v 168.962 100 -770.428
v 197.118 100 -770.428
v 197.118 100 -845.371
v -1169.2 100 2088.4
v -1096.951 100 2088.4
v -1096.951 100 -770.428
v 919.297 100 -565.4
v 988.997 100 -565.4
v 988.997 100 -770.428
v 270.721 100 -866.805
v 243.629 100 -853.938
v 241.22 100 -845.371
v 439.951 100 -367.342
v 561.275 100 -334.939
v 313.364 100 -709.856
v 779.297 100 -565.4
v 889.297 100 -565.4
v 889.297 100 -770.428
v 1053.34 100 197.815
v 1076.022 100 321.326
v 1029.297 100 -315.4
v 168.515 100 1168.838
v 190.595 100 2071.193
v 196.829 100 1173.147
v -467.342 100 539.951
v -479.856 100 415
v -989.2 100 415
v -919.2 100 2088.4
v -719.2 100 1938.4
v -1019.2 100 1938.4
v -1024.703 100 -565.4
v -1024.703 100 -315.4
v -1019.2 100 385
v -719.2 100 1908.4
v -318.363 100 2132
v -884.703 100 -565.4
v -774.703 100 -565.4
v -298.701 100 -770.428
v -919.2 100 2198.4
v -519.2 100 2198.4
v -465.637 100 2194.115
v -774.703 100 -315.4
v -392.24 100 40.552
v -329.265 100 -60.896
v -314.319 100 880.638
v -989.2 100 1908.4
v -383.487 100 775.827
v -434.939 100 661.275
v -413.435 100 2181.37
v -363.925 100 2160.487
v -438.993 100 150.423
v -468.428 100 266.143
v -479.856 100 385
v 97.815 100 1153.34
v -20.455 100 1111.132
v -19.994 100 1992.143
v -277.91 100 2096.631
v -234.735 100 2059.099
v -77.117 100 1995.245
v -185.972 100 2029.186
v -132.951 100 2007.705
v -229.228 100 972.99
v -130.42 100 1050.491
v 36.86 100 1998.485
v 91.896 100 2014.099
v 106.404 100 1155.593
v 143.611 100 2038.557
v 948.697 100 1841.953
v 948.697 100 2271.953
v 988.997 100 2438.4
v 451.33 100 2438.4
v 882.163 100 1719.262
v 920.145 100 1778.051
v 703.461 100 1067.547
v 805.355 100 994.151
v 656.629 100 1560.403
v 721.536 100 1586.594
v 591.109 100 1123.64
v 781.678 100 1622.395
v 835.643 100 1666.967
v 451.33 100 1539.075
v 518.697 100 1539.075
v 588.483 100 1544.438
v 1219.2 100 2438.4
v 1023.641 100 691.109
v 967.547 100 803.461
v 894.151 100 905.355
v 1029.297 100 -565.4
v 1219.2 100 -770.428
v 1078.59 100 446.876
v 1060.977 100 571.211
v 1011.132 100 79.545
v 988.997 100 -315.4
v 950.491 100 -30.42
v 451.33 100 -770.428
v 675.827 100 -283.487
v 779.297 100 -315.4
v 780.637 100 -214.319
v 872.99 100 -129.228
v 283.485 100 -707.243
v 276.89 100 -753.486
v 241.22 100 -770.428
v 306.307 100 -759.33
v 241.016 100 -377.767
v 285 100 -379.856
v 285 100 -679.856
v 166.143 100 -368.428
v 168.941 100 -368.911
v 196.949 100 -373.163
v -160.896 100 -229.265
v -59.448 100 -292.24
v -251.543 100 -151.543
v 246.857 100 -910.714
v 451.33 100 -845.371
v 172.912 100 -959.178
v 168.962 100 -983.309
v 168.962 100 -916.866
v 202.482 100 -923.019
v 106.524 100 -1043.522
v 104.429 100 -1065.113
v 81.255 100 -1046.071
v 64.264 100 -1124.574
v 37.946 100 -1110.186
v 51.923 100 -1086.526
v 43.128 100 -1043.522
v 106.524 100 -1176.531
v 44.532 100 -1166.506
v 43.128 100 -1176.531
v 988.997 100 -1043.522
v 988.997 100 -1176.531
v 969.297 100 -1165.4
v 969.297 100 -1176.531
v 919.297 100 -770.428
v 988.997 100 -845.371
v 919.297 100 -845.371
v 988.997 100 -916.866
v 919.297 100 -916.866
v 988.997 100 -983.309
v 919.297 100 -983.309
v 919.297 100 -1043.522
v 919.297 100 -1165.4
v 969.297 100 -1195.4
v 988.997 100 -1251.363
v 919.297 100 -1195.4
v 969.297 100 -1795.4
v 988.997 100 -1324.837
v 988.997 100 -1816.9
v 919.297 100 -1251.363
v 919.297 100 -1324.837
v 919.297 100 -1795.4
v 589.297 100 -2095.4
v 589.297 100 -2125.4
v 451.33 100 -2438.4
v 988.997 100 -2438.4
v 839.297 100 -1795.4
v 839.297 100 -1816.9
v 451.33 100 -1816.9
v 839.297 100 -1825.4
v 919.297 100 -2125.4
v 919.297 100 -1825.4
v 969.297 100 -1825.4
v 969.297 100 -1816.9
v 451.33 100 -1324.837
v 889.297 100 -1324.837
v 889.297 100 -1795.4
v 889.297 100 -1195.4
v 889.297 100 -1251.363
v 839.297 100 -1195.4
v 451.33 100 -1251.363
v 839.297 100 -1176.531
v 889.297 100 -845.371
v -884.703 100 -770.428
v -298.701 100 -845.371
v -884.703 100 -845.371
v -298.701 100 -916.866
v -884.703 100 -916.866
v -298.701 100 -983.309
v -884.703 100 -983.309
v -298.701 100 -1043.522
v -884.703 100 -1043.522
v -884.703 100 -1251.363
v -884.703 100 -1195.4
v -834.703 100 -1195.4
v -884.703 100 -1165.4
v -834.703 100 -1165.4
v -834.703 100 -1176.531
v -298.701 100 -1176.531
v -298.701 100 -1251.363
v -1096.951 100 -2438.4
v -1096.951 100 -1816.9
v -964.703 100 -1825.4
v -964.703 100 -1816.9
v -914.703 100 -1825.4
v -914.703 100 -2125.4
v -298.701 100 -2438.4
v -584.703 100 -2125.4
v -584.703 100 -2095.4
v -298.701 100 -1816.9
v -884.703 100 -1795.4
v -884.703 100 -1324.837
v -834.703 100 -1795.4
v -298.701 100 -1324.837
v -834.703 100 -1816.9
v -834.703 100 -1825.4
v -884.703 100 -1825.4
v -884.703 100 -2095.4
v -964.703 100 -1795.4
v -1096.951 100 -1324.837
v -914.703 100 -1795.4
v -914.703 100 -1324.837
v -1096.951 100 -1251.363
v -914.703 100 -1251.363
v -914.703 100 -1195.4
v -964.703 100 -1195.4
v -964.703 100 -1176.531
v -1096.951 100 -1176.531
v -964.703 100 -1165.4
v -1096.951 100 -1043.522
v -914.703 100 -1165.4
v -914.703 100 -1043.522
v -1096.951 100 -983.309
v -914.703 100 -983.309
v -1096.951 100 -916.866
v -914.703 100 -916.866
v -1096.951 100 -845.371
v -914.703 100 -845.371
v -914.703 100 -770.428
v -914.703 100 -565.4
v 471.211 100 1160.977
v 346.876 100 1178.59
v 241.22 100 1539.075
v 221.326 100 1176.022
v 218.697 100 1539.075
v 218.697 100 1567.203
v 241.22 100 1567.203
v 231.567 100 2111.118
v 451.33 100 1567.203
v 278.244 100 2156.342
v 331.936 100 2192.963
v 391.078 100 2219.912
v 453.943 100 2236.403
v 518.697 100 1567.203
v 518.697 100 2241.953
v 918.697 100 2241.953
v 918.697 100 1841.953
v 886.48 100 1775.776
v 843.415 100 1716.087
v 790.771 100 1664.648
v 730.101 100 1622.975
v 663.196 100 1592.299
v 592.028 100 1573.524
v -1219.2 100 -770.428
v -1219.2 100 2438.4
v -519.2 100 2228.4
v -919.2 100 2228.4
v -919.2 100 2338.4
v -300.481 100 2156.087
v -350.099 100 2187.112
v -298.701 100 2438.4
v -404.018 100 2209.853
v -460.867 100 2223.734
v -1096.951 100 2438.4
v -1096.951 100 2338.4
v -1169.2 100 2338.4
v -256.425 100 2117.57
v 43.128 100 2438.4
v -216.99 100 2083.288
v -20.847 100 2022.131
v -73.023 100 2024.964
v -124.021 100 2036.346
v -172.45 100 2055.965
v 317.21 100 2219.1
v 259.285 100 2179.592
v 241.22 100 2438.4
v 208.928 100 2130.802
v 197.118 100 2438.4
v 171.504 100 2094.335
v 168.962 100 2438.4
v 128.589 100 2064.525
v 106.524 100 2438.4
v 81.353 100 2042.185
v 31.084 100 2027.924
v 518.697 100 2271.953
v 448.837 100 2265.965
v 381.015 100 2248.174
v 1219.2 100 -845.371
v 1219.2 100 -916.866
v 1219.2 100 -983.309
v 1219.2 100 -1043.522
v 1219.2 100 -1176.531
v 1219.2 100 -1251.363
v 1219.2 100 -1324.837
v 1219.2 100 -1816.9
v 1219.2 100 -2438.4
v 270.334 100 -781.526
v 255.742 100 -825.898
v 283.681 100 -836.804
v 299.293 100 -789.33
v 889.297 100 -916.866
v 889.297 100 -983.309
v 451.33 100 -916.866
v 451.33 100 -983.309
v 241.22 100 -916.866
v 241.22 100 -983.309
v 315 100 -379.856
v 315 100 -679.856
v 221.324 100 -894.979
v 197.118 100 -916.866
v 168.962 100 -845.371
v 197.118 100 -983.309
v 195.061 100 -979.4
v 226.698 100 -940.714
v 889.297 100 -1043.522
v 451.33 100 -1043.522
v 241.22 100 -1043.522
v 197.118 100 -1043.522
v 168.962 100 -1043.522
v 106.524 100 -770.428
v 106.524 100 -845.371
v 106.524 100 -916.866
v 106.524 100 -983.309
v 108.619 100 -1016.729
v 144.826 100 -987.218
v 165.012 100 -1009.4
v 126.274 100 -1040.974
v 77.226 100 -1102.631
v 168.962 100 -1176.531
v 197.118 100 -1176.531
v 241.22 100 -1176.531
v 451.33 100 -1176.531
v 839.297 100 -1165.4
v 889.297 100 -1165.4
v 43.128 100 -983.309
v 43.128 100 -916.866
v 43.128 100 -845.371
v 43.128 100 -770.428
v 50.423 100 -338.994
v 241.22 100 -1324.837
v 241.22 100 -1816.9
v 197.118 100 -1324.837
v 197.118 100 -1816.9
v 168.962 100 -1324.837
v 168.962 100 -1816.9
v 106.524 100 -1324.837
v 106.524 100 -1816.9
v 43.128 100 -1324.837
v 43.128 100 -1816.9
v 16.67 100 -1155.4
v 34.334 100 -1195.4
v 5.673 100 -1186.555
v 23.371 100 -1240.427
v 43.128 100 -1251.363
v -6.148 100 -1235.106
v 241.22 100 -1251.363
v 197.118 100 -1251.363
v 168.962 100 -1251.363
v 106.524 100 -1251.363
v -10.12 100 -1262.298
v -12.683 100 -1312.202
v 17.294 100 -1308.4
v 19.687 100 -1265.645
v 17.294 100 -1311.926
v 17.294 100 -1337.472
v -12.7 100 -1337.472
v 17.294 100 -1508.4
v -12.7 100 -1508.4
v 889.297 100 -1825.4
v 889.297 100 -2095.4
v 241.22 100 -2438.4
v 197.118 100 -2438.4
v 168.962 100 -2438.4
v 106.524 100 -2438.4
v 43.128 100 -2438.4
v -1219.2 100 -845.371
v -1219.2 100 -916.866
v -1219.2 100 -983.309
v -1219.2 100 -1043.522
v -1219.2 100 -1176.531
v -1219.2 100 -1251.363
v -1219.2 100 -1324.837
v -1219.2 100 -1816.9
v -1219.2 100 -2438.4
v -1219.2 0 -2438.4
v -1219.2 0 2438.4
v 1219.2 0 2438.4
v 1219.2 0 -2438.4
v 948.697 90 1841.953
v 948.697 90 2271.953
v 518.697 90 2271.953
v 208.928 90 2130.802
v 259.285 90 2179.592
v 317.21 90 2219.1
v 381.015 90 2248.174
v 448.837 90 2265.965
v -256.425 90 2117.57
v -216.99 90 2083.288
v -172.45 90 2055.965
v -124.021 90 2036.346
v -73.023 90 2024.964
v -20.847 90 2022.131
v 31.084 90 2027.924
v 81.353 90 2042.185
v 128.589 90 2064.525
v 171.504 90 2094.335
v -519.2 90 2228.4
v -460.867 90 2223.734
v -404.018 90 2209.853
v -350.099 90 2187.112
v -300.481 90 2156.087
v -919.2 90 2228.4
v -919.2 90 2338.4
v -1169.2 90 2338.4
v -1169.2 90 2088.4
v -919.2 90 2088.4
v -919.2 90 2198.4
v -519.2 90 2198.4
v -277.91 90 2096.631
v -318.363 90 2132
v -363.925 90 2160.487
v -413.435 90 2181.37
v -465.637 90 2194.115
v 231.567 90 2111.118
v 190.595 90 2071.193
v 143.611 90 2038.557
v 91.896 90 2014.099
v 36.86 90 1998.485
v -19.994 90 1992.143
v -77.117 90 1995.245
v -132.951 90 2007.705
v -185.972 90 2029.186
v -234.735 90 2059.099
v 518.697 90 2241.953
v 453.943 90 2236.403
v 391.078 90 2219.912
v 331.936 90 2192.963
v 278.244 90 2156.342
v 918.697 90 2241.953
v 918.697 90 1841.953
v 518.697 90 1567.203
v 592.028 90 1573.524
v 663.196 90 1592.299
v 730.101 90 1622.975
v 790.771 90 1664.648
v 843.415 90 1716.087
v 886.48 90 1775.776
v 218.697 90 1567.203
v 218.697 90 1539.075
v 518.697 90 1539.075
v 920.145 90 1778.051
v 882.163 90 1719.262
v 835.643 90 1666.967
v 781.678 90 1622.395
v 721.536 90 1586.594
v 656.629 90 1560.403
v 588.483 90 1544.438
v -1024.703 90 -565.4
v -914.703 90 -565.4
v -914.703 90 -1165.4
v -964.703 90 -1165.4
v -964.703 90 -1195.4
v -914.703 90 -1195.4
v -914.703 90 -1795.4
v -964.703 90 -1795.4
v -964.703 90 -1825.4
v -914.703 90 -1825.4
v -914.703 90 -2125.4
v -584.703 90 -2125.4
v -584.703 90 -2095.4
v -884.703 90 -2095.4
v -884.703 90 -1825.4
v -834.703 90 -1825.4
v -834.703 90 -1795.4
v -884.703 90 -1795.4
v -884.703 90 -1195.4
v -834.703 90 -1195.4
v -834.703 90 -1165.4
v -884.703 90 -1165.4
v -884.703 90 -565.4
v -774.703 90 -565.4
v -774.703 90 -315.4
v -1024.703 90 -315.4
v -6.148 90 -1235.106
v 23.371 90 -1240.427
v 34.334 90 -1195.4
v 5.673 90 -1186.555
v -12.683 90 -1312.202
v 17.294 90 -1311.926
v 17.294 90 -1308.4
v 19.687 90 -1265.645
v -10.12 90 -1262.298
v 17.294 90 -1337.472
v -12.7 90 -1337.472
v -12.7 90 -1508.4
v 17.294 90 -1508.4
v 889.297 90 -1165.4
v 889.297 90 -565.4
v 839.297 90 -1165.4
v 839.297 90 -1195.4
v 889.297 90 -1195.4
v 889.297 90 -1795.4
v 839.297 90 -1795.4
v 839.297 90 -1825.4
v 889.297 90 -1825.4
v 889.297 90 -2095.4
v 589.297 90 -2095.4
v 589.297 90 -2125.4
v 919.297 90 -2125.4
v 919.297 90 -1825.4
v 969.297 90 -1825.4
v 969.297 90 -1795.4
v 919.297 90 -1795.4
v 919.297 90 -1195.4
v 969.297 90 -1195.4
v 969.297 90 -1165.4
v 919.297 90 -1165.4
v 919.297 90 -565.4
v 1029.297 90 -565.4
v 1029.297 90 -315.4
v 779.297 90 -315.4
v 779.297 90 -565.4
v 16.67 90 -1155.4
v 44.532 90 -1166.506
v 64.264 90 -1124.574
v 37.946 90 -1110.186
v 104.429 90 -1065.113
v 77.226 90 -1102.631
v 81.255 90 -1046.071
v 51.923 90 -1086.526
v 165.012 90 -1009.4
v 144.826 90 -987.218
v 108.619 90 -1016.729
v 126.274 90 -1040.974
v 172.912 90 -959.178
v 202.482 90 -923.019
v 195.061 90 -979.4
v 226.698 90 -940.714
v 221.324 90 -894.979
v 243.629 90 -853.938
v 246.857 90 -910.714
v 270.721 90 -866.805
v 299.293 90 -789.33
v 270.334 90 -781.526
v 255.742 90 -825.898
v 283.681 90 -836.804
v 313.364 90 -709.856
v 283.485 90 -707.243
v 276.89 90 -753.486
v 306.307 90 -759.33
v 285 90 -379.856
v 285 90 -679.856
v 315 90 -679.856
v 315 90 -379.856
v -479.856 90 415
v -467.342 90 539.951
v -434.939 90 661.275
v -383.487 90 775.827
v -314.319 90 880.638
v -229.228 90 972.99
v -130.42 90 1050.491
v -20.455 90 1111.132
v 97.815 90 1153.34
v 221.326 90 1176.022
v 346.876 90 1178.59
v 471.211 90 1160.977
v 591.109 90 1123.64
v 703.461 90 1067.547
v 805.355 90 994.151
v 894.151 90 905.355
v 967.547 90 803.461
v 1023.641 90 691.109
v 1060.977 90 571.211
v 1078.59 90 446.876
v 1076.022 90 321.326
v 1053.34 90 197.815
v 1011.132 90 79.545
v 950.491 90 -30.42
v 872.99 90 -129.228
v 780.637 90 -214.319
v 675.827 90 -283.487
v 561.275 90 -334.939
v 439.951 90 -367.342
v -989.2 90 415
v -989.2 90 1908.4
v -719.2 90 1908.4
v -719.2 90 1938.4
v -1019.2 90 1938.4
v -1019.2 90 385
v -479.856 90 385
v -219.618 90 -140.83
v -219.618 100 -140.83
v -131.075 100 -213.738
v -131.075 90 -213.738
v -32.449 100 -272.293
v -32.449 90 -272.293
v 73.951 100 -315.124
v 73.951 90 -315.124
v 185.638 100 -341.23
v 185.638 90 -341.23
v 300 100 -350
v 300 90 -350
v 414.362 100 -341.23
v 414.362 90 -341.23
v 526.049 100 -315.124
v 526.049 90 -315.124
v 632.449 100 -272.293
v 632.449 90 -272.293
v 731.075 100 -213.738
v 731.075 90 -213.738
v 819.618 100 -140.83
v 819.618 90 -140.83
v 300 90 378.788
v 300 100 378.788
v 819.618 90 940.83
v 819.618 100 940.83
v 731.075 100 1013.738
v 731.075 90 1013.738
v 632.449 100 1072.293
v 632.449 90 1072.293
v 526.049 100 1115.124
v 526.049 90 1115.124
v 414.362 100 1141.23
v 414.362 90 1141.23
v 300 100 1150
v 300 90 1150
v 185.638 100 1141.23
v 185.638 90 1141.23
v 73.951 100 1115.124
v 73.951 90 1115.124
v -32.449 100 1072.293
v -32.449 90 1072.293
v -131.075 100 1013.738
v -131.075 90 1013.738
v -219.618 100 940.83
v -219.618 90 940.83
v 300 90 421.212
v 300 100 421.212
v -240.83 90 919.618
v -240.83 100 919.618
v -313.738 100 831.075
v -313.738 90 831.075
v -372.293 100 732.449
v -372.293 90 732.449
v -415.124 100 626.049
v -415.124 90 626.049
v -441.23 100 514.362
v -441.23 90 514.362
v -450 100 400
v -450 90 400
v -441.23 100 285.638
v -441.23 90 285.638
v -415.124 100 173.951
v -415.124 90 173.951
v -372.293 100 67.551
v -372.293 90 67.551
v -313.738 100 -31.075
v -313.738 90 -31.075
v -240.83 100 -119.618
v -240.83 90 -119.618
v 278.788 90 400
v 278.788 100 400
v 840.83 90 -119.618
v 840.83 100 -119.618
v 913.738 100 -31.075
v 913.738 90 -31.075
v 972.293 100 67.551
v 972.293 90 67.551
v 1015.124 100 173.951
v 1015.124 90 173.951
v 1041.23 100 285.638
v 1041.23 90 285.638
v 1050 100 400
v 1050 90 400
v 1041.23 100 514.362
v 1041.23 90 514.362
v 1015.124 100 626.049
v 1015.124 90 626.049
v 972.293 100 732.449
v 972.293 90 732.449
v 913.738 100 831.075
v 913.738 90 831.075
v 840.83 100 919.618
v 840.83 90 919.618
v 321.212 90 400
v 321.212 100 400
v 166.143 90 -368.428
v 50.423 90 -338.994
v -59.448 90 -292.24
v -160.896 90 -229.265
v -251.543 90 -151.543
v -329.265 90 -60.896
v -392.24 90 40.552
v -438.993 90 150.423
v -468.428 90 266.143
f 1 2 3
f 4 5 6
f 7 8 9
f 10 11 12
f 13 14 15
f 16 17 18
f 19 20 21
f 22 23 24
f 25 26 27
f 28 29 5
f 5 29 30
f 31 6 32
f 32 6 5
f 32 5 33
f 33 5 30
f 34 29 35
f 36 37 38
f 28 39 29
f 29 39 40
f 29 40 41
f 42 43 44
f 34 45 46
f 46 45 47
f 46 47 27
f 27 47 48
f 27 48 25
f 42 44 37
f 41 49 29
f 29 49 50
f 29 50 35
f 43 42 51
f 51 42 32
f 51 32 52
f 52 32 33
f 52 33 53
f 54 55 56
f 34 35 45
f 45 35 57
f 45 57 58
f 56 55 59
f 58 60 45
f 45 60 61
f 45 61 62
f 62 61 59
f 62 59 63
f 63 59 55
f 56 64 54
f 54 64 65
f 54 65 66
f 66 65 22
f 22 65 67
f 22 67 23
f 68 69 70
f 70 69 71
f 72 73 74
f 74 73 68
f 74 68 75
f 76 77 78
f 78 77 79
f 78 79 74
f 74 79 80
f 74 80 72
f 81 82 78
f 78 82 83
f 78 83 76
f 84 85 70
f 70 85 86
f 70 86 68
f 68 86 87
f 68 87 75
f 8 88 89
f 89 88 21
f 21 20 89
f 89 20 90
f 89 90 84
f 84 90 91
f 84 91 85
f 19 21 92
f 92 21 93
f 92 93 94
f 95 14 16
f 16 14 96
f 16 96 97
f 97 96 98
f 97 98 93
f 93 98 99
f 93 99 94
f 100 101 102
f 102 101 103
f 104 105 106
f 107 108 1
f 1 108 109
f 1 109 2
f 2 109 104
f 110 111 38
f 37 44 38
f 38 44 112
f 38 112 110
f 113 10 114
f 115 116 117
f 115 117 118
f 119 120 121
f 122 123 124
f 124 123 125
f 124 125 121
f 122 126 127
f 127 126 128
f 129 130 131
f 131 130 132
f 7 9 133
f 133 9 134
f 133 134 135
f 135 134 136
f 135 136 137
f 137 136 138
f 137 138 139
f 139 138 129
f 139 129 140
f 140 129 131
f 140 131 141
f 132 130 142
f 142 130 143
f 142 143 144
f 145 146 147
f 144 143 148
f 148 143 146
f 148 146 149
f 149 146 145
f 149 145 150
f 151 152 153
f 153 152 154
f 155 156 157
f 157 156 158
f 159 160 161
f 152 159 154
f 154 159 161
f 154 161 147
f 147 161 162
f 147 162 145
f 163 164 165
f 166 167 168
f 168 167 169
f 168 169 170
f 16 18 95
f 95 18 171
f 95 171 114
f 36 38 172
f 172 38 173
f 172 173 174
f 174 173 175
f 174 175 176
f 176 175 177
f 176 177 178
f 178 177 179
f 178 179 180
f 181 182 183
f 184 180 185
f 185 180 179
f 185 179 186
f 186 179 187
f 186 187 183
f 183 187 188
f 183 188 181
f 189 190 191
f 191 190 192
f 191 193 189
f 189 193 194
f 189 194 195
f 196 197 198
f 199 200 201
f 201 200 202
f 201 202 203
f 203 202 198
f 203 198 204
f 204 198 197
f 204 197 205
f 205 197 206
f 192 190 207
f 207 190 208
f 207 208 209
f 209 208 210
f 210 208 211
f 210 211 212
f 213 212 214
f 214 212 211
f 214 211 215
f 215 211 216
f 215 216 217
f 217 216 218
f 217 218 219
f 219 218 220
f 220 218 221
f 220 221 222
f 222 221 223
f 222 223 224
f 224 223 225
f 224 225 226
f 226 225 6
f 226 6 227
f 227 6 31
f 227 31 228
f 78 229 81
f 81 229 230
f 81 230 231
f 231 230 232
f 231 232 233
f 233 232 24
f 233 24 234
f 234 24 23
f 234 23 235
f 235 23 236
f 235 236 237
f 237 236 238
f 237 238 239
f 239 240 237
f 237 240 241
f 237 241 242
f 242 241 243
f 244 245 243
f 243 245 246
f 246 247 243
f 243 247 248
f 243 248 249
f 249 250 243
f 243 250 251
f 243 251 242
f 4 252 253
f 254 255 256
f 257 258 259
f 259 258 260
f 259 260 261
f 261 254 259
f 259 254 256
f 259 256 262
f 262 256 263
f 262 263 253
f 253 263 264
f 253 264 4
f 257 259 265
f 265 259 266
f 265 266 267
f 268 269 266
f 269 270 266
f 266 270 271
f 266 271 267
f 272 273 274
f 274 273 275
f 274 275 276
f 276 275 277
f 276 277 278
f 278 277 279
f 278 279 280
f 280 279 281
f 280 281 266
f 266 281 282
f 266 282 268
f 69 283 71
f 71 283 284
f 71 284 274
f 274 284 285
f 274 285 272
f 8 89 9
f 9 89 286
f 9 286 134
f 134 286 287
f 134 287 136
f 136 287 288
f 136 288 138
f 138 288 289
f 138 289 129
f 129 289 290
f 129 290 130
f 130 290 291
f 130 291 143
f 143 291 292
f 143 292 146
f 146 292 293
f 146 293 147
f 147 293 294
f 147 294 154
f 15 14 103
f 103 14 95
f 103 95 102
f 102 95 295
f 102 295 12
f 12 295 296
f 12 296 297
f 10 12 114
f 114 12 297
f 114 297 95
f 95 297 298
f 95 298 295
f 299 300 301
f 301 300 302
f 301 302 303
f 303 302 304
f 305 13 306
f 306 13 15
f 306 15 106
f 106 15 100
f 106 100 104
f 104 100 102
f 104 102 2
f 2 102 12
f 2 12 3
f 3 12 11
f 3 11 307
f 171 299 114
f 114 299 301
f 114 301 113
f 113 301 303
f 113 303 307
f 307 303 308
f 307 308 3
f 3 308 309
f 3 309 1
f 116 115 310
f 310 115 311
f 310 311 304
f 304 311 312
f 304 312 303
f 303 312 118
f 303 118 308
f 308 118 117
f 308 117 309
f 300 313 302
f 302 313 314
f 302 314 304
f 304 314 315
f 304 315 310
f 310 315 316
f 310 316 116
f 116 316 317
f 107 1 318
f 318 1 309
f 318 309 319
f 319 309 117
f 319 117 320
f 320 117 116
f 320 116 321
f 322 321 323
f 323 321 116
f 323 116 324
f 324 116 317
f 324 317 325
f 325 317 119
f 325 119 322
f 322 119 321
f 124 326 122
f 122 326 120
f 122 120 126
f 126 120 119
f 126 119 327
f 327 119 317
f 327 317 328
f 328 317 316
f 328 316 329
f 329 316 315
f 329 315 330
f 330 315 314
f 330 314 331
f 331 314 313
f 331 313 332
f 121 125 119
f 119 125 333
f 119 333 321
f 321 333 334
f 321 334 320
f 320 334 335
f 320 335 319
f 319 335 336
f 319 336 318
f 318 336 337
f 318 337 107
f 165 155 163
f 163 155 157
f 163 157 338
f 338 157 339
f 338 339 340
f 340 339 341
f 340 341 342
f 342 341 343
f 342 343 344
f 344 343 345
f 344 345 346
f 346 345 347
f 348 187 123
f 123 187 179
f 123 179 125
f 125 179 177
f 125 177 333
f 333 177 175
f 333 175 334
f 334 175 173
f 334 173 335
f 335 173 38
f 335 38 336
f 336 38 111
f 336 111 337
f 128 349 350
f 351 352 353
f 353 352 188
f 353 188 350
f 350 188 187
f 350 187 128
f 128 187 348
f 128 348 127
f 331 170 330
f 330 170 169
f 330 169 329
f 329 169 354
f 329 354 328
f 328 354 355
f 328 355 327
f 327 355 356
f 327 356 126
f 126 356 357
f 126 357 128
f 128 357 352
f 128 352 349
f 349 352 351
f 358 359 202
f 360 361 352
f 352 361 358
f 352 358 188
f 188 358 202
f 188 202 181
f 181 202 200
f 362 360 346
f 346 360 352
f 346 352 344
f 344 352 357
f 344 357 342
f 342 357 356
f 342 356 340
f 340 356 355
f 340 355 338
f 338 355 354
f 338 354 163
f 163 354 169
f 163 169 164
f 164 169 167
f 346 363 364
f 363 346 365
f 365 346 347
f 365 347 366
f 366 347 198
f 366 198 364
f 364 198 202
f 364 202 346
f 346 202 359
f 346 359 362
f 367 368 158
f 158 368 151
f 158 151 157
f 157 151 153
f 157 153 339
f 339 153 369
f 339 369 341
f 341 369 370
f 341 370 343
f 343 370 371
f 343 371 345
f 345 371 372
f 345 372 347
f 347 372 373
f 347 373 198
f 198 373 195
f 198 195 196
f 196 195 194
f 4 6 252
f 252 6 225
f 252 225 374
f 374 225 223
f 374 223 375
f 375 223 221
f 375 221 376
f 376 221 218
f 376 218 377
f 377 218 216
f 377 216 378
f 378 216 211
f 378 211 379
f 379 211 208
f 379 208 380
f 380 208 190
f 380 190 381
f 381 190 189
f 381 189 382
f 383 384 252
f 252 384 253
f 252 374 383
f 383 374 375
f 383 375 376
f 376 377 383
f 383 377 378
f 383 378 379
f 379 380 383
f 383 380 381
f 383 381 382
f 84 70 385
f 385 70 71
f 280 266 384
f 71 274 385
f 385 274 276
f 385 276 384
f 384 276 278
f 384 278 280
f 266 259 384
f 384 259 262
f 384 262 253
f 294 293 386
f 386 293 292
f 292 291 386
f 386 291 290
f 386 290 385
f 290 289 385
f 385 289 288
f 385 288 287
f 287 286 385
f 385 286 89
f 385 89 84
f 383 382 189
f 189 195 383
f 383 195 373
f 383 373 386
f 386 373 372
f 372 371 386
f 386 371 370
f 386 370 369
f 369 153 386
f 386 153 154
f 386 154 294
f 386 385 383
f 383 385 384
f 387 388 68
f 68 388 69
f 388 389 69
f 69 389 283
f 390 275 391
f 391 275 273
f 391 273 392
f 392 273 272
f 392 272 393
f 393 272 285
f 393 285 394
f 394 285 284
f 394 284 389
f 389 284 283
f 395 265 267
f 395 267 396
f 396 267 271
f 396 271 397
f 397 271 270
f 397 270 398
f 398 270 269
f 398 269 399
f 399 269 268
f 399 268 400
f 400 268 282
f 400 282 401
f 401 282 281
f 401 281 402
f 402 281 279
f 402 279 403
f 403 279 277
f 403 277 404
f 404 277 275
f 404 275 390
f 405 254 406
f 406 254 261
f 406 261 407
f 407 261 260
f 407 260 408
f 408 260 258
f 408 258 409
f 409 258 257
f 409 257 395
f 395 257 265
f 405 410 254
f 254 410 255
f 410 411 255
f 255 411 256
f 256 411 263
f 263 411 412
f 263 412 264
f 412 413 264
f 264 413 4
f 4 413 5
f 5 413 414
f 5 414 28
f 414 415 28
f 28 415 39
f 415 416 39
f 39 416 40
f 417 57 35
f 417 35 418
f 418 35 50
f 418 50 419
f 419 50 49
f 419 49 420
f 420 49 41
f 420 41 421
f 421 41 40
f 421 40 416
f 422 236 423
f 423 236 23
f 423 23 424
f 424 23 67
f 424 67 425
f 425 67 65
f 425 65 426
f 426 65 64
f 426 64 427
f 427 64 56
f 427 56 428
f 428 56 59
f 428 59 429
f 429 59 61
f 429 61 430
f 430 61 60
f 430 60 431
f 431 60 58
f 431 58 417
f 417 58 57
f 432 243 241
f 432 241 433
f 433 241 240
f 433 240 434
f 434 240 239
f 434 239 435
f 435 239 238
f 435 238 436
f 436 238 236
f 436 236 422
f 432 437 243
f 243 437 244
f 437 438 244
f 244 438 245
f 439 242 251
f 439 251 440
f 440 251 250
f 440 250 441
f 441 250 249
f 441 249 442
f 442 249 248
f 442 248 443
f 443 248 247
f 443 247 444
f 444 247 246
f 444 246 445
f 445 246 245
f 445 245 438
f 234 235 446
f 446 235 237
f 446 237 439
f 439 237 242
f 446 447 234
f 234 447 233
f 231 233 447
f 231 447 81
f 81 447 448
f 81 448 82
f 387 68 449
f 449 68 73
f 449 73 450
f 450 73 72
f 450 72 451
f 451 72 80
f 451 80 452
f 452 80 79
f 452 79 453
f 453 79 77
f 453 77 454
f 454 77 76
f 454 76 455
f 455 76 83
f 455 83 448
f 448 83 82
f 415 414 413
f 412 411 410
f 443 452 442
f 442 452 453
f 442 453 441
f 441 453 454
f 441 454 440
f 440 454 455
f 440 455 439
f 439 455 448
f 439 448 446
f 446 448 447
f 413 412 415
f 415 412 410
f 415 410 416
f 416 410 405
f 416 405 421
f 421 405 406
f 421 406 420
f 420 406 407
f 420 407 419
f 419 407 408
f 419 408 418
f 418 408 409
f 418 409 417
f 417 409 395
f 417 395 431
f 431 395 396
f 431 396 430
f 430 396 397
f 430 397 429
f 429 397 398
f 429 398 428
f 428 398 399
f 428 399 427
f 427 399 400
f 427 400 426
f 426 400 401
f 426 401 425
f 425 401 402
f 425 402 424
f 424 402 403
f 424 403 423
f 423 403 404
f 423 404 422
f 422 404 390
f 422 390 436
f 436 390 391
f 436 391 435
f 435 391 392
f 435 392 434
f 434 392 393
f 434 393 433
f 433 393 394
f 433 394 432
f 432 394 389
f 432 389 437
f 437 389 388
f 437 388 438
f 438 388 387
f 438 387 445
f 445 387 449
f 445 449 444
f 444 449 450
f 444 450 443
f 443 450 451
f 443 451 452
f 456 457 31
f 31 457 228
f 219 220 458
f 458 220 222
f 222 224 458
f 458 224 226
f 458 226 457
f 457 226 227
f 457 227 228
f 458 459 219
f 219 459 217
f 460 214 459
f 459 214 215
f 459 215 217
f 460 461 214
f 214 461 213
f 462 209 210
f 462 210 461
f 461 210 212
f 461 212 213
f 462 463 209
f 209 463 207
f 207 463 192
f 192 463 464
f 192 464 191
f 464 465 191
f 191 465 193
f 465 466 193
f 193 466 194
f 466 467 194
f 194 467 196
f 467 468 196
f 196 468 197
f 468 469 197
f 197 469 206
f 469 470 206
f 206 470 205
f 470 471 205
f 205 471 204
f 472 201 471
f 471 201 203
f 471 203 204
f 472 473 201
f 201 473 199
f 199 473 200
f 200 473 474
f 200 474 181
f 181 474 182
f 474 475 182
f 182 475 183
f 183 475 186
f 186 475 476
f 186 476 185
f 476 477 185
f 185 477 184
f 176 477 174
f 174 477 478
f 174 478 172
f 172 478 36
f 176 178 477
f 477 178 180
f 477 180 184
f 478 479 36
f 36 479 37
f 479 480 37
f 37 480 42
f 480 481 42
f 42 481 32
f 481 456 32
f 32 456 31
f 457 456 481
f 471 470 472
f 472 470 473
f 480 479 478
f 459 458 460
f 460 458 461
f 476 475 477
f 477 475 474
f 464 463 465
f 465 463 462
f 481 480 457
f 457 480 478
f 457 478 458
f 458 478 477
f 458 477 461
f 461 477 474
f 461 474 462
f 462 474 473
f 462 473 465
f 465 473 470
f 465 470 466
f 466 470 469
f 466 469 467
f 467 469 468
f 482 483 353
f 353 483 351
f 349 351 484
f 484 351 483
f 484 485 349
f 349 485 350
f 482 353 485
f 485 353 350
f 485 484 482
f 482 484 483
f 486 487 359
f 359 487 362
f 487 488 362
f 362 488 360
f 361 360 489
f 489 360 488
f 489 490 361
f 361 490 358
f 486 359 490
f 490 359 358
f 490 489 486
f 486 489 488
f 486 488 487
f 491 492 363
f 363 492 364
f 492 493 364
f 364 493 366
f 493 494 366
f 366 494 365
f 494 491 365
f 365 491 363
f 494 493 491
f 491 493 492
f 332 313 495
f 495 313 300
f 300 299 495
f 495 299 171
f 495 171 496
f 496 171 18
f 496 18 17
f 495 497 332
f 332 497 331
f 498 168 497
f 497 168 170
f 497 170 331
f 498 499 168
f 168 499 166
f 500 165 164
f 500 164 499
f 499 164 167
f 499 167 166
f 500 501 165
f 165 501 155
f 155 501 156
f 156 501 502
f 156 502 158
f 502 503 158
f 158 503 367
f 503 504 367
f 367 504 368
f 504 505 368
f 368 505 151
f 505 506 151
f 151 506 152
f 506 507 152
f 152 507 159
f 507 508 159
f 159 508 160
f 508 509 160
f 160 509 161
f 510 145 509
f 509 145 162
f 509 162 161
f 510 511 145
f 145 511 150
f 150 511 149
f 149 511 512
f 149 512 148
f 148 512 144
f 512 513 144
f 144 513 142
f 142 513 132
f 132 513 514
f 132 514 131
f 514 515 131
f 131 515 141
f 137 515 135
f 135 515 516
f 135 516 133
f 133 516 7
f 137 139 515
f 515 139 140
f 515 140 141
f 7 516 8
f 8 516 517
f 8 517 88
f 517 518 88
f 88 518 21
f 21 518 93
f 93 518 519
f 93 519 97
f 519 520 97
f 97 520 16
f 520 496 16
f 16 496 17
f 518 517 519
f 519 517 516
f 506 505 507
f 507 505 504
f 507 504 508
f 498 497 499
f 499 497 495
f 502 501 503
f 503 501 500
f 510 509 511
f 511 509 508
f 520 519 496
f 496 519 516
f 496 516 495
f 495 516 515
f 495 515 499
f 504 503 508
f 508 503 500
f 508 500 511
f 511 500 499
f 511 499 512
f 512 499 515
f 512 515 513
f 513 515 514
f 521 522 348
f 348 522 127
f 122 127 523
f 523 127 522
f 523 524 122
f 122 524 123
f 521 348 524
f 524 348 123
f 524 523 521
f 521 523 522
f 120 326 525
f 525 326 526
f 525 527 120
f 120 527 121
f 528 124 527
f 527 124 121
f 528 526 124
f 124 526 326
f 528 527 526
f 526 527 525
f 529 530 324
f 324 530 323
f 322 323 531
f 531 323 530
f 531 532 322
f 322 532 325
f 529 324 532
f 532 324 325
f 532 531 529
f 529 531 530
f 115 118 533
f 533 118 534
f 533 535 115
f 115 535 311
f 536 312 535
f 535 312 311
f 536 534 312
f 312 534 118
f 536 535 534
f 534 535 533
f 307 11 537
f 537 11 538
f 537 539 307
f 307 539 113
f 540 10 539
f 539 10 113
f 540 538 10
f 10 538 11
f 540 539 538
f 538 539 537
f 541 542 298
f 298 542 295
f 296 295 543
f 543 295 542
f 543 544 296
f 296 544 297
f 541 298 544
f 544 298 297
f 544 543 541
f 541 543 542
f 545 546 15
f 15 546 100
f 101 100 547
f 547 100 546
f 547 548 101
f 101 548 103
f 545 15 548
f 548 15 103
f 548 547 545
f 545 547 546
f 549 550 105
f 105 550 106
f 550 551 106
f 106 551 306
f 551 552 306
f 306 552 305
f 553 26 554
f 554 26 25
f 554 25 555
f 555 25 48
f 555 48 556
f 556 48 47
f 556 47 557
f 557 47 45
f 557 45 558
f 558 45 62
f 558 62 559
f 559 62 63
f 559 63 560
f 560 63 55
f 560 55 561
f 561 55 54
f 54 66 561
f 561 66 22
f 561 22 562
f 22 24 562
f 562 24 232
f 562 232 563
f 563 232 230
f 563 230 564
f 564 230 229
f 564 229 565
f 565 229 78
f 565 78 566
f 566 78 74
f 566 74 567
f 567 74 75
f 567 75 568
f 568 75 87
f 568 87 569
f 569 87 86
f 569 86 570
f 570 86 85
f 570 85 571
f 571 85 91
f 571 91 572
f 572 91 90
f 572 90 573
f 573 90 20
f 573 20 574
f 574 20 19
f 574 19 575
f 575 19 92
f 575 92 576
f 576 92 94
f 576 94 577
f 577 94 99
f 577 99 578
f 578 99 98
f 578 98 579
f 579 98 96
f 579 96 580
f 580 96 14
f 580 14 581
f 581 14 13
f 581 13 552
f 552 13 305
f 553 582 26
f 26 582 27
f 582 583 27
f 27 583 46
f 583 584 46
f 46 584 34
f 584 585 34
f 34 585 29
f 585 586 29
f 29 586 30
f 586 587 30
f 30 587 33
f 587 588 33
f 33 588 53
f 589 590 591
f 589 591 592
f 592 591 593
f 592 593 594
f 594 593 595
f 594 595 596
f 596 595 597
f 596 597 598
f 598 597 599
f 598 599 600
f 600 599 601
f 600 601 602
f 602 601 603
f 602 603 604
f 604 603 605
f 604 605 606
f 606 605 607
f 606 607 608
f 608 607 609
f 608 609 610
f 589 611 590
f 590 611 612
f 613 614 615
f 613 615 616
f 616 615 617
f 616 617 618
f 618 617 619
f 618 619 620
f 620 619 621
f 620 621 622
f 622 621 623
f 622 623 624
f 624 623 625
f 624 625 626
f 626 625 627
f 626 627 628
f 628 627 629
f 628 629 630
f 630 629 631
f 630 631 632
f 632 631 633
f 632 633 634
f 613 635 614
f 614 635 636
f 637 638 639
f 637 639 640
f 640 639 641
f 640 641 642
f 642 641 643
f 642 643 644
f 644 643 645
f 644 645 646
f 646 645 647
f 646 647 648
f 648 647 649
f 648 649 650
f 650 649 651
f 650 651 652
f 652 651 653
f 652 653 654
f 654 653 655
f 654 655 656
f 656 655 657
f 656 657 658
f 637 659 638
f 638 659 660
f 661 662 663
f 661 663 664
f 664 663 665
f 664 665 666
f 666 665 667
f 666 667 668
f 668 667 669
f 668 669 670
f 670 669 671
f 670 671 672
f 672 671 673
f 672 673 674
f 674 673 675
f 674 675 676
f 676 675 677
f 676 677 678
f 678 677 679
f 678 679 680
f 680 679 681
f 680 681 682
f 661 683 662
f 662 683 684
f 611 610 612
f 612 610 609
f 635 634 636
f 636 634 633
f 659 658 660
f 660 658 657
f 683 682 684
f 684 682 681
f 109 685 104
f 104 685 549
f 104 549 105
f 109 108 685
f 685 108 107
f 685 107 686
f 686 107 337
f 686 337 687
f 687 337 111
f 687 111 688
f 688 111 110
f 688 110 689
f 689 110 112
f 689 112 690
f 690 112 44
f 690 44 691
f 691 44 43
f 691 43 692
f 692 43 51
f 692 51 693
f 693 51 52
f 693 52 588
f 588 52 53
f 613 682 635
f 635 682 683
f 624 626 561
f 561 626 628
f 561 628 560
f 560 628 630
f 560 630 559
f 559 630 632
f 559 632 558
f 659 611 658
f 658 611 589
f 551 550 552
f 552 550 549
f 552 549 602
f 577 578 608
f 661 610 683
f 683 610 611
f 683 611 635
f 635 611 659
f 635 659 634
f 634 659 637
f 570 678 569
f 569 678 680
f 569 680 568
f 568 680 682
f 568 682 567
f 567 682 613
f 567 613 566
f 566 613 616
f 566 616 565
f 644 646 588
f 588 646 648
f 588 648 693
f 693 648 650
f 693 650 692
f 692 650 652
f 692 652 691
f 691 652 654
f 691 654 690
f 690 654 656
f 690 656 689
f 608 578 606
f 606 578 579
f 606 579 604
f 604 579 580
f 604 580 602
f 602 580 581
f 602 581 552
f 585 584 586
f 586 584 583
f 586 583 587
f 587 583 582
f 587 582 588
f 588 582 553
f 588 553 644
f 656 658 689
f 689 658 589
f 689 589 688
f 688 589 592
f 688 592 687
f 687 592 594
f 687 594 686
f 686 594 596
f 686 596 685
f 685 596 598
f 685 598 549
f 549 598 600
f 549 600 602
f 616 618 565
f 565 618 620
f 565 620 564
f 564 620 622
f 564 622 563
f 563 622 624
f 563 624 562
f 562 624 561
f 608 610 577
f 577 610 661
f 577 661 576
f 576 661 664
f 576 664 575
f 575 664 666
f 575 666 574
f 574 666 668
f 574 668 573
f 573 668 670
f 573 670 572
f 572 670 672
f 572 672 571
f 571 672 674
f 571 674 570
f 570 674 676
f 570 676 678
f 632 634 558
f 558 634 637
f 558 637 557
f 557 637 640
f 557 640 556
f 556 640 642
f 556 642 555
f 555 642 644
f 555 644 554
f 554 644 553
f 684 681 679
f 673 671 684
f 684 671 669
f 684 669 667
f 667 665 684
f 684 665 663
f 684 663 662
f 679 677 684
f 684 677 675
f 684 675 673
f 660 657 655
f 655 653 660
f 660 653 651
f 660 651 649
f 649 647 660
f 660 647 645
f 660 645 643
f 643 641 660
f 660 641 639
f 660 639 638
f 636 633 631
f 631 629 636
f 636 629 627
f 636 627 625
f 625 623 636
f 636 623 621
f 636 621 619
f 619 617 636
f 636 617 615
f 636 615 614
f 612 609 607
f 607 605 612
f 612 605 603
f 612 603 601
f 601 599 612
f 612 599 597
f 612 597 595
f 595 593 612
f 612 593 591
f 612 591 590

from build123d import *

# Parameters (mm, degrees)
SKETCH1_W           = 2438.4
SKETCH1_H           = 4876.8
BOSS_EXTRUDE1_DEPTH = 100
SKETCH2_W           = 29.994
SKETCH2_H           = 170.927857272
CUT_EXTRUDE1_DEPTH  = 10


with BuildPart() as part:
    # Sketch1 → Boss-Extrude1 (new body)
    with BuildSketch(Plane(origin=(0, 0, 0), x_dir=(1, 0, 0), z_dir=(0, 1, 0))):
        Rectangle(SKETCH1_W, SKETCH1_H)
    extrude(amount=BOSS_EXTRUDE1_DEPTH)

    # Sketch2 → Cut-Extrude1 (cut)
    # profile 1 of 14: a face of its own
    with BuildSketch(Plane(origin=(0, 100, 0), x_dir=(1, 0, 0), z_dir=(0, 1, 0))):
        with BuildLine():
            Line((948.697268509, -2271.953299987), (948.697268509, -1841.953299987))
            ThreePointArc((948.697268509, -1841.953299987), (781.677972321, -1622.395299678), (518.697268509, -1539.074772669))
            Line((518.697268509, -1539.074772669), (218.697268509, -1539.074772669))
            Line((218.697268509, -1539.074772669), (218.697268509, -1567.203186754))
            Line((218.697268509, -1567.203186754), (518.697268509, -1567.203186754))
            ThreePointArc((518.697268509, -1567.203186754), (761.332604312, -1642.506806454), (918.697268509, -1841.953299987))
            Line((918.697268509, -1841.953299987), (918.697268509, -2241.953299987))
            Line((918.697268509, -2241.953299987), (518.697268509, -2241.953299987))
            ThreePointArc((518.697268509, -2241.953299987), (360.930329193, -2207.702777647), (231.567262992, -2111.117569023))
            ThreePointArc((231.567262992, -2111.117569023), (-19.994263519, -1992.142953693), (-277.909673512, -2096.631240126))
            ThreePointArc((-277.909673512, -2096.631240126), (-388.263085664, -2171.917017743), (-519.2, -2198.4))
            Line((-519.2, -2198.4), (-919.2, -2198.4))
            Line((-919.2, -2198.4), (-919.2, -2088.4))
            Line((-919.2, -2088.4), (-1169.2, -2088.4))
            Line((-1169.2, -2088.4), (-1169.2, -2338.4))
            Line((-1169.2, -2338.4), (-919.2, -2338.4))
            Line((-919.2, -2338.4), (-919.2, -2228.4))
            Line((-919.2, -2228.4), (-519.2, -2228.4))
            ThreePointArc((-519.2, -2228.4), (-376.604559833, -2199.558992626), (-256.425361631, -2117.569825155))
            ThreePointArc((-256.425361631, -2117.569825155), (-20.846930763, -2022.130833888), (208.9279, -2130.801553459))
            ThreePointArc((208.9279, -2130.801553459), (348.490866445, -2235.002223915), (518.697268509, -2271.953299987))
            Line((518.697268509, -2271.953299987), (948.697268509, -2271.953299987))
        make_face()
    # profile 2 of 14: a face of its own
    with BuildSketch(Plane(origin=(0, 100, 0), x_dir=(1, 0, 0), z_dir=(0, 1, 0))):
        with BuildLine():
            Line((285, 379.855755893), (285, 679.855755893))
            Line((285, 679.855755893), (315, 679.855755893))
            Line((315, 679.855755893), (315, 379.855755893))
            ThreePointArc((315, 379.855755893), (851.543289326, -951.543289326), (-479.855755893, -415))
            Line((-479.855755893, -415), (-989.2, -415))
            Line((-989.2, -415), (-989.2, -1908.4))
            Line((-989.2, -1908.4), (-719.2, -1908.4))
            Line((-719.2, -1908.4), (-719.2, -1938.4))
            Line((-719.2, -1938.4), (-1019.2, -1938.4))
            Line((-1019.2, -1938.4), (-1019.2, -385))
            Line((-1019.2, -385), (-479.855755893, -385))
            ThreePointArc((-479.855755893, -385), (-251.543289326, 151.543289326), (285, 379.855755893))
        make_face()
        with BuildLine():
            ThreePointArc((840.830091248, -919.617948498), (1050, -399.999999989), (840.830091233, 119.617948514))
            Line((840.830091233, 119.617948514), (321.212142749, -399.999999999))
            Line((321.212142749, -399.999999999), (840.830091248, -919.617948498))
        make_face(mode=Mode.SUBTRACT)
        with BuildLine():
            ThreePointArc((-240.830091247, 119.617948498), (-450, -399.99999999), (-240.830091262, -919.617948483))
            Line((-240.830091262, -919.617948483), (278.78785725, -400))
            Line((278.78785725, -400), (-240.830091247, 119.617948498))
        make_face(mode=Mode.SUBTRACT)
        with BuildLine():
            ThreePointArc((-219.617948483, -940.830091262), (300.00000001, -1150), (819.617948498, -940.830091248))
            Line((819.617948498, -940.830091248), (300, -421.21214275))
            Line((300, -421.21214275), (-219.617948483, -940.830091262))
        make_face(mode=Mode.SUBTRACT)
        with BuildLine():
            ThreePointArc((819.617948513, 140.830091233), (300.00000001, 350), (-219.617948498, 140.830091247))
            Line((-219.617948498, 140.830091247), (300.000000001, -378.787857251))
            Line((300.000000001, -378.787857251), (819.617948513, 140.830091233))
        make_face(mode=Mode.SUBTRACT)
    # profile 3 of 14: a face of its own
    with BuildSketch(Plane(origin=(0, 100, 0), x_dir=(1, 0, 0), z_dir=(0, 1, 0))):
        with BuildLine():
            Line((283.48537458, 707.243266979), (313.363780337, 709.855755893))
            ThreePointArc((313.363780337, 709.855755893), (310.509267678, 734.689146996), (306.307291752, 759.330351401))
            Line((306.307291752, 759.330351401), (276.889903298, 753.485568645))
            ThreePointArc((276.889903298, 753.485568645), (280.817354071, 730.454233152), (283.48537458, 707.243266979))
        make_face()
    # profile 4 of 14: a face of its own
    with BuildSketch(Plane(origin=(0, 100, 0), x_dir=(1, 0, 0), z_dir=(0, 1, 0))):
        with BuildLine():
            Line((270.333610539, 781.525596779), (299.292720231, 789.330351401))
            ThreePointArc((299.292720231, 789.330351401), (292.133221855, 813.280030714), (283.680743009, 836.804510677))
            Line((283.680743009, 836.804510677), (255.741601187, 825.898155504))
            ThreePointArc((255.741601187, 825.898155504), (263.641859342, 803.91058617), (270.333610539, 781.525596779))
        make_face()
    # profile 5 of 14: a face of its own
    with BuildSketch(Plane(origin=(0, 100, 0), x_dir=(1, 0, 0), z_dir=(0, 1, 0))):
        with BuildLine():
            ThreePointArc((243.628805062, 853.938183638), (233.035185878, 874.762268653), (221.323804893, 894.978866774))
            Line((221.323804893, 894.978866774), (246.857174792, 910.713899361))
            ThreePointArc((246.857174792, 910.713899361), (259.387170406, 889.084179851), (270.72127371, 866.804510677))
            Line((270.72127371, 866.804510677), (243.628805062, 853.938183638))
        make_face()
    # profile 6 of 14: a face of its own
    with BuildSketch(Plane(origin=(0, 100, 0), x_dir=(1, 0, 0), z_dir=(0, 1, 0))):
        with BuildLine():
            ThreePointArc((202.481901877, 923.018894908), (188.18918005, 941.500923663), (172.911659512, 959.177593325))
            Line((172.911659512, 959.177593325), (195.061065513, 979.40005714))
            ThreePointArc((195.061065513, 979.40005714), (211.406470515, 960.487804723), (226.698240294, 940.713899361))
            Line((226.698240294, 940.713899361), (202.481901877, 923.018894908))
        make_face()
    # profile 7 of 14: a face of its own
    with BuildSketch(Plane(origin=(0, 100, 0), x_dir=(1, 0, 0), z_dir=(0, 1, 0))):
        with BuildLine():
            Line((144.825754574, 987.217621459), (165.011981963, 1009.40005714))
            ThreePointArc((165.011981963, 1009.40005714), (146.073033678, 1025.714522931), (126.274156062, 1040.973946293))
            Line((126.274156062, 1040.973946293), (108.618763636, 1016.728712798))
            ThreePointArc((108.618763636, 1016.728712798), (127.124133149, 1002.466224119), (144.825754574, 987.217621459))
        make_face()
    # profile 8 of 14: a face of its own
    with BuildSketch(Plane(origin=(0, 100, 0), x_dir=(1, 0, 0), z_dir=(0, 1, 0))):
        with BuildLine():
            ThreePointArc((77.22618432, 1102.631418758), (90.259847646, 1083.460719448), (104.428850873, 1065.113200834))
            Line((104.428850873, 1065.113200834), (81.255026867, 1046.0707767))
            ThreePointArc((81.255026867, 1046.0707767), (65.97699442, 1065.854383225), (51.923166638, 1086.525602039))
            Line((51.923166638, 1086.525602039), (77.22618432, 1102.631418758))
        make_face()
    # profile 9 of 14: a face of its own
    with BuildSketch(Plane(origin=(0, 100, 0), x_dir=(1, 0, 0), z_dir=(0, 1, 0))):
        with BuildLine():
            Line((16.670406388, 1155.4), (44.532414655, 1166.506238397))
            ThreePointArc((44.532414655, 1166.506238397), (53.763601741, 1145.241777983), (64.263689238, 1124.574406251))
            Line((64.263689238, 1124.574406251), (37.946077545, 1110.186100207))
            ThreePointArc((37.946077545, 1110.186100207), (26.624132388, 1132.471138247), (16.670406388, 1155.4))
        make_face()
    # profile 10 of 14: a face of its own
    with BuildSketch(Plane(origin=(0, 100, 0), x_dir=(1, 0, 0), z_dir=(0, 1, 0))):
        with BuildLine():
            Line((23.370750404, 1240.42684097), (-6.147613191, 1235.106479452))
            ThreePointArc((-6.147613191, 1235.106479452), (-0.971721956, 1210.652041971), (5.673377354, 1186.555319834))
            Line((5.673377354, 1186.555319834), (34.333657687, 1195.4))
            ThreePointArc((34.333657687, 1195.4), (28.170924763, 1217.747546054), (23.370750404, 1240.42684097))
        make_face()
    # profile 11 of 14: a face of its own
    with BuildSketch(Plane(origin=(0, 100, 0), x_dir=(1, 0, 0), z_dir=(0, 1, 0))):
        with BuildLine():
            ThreePointArc((-12.7, 1308.4), (-12.054521902, 1285.313106906), (-10.120104275, 1262.298344185))
            Line((-10.120104275, 1262.298344185), (19.686621628, 1265.644853858))
            ThreePointArc((19.686621628, 1265.644853858), (17.892622976, 1286.988979707), (17.294, 1308.4))
            Line((17.294, 1308.4), (17.294, 1311.926257178))
            Line((17.294, 1311.926257178), (-12.682506858, 1312.202101666))
            ThreePointArc((-12.682506858, 1312.202101666), (-12.695626691, 1310.301070954), (-12.7, 1308.4))
        make_face()
    # profile 12 of 14: a face of its own
    with BuildSketch(Plane(origin=(0, 100, 0), x_dir=(1, 0, 0), z_dir=(0, 1, 0))):
        with Locations((2.297, 1422.936071364)):
            Rectangle(SKETCH2_W, SKETCH2_H)
    # profile 13 of 14: a face of its own
    with BuildSketch(Plane(origin=(0, 100, 0), x_dir=(1, 0, 0), z_dir=(0, 1, 0))):
        Polygon((889.297, 565.4), (889.297, 1165.4), (839.297, 1165.4), (839.297, 1195.4), (889.297, 1195.4), (889.297, 1795.4), (839.297, 1795.4), (839.297, 1825.4), (889.297, 1825.4), (889.297, 2095.4), (589.297, 2095.4), (589.297, 2125.4), (919.297, 2125.4), (919.297, 1825.4), (969.297, 1825.4), (969.297, 1795.4), (919.297, 1795.4), (919.297, 1195.4), (969.297, 1195.4), (969.297, 1165.4), (919.297, 1165.4), (919.297, 565.4), (1029.297, 565.4), (1029.297, 315.4), (779.297, 315.4), (779.297, 565.4), align=None)
    # profile 14 of 14: a face of its own
    with BuildSketch(Plane(origin=(0, 100, 0), x_dir=(1, 0, 0), z_dir=(0, 1, 0))):
        Polygon((-1024.703, 565.4), (-914.703, 565.4), (-914.703, 1165.4), (-964.703, 1165.4), (-964.703, 1195.4), (-914.703, 1195.4), (-914.703, 1795.4), (-964.703, 1795.4), (-964.703, 1825.4), (-914.703, 1825.4), (-914.703, 2125.4), (-584.703, 2125.4), (-584.703, 2095.4), (-884.703, 2095.4), (-884.703, 1825.4), (-834.703, 1825.4), (-834.703, 1795.4), (-884.703, 1795.4), (-884.703, 1195.4), (-834.703, 1195.4), (-834.703, 1165.4), (-884.703, 1165.4), (-884.703, 565.4), (-774.703, 565.4), (-774.703, 315.4), (-1024.703, 315.4), align=None)
    extrude(amount=-CUT_EXTRUDE1_DEPTH, mode=Mode.SUBTRACT)


solid = part.part
